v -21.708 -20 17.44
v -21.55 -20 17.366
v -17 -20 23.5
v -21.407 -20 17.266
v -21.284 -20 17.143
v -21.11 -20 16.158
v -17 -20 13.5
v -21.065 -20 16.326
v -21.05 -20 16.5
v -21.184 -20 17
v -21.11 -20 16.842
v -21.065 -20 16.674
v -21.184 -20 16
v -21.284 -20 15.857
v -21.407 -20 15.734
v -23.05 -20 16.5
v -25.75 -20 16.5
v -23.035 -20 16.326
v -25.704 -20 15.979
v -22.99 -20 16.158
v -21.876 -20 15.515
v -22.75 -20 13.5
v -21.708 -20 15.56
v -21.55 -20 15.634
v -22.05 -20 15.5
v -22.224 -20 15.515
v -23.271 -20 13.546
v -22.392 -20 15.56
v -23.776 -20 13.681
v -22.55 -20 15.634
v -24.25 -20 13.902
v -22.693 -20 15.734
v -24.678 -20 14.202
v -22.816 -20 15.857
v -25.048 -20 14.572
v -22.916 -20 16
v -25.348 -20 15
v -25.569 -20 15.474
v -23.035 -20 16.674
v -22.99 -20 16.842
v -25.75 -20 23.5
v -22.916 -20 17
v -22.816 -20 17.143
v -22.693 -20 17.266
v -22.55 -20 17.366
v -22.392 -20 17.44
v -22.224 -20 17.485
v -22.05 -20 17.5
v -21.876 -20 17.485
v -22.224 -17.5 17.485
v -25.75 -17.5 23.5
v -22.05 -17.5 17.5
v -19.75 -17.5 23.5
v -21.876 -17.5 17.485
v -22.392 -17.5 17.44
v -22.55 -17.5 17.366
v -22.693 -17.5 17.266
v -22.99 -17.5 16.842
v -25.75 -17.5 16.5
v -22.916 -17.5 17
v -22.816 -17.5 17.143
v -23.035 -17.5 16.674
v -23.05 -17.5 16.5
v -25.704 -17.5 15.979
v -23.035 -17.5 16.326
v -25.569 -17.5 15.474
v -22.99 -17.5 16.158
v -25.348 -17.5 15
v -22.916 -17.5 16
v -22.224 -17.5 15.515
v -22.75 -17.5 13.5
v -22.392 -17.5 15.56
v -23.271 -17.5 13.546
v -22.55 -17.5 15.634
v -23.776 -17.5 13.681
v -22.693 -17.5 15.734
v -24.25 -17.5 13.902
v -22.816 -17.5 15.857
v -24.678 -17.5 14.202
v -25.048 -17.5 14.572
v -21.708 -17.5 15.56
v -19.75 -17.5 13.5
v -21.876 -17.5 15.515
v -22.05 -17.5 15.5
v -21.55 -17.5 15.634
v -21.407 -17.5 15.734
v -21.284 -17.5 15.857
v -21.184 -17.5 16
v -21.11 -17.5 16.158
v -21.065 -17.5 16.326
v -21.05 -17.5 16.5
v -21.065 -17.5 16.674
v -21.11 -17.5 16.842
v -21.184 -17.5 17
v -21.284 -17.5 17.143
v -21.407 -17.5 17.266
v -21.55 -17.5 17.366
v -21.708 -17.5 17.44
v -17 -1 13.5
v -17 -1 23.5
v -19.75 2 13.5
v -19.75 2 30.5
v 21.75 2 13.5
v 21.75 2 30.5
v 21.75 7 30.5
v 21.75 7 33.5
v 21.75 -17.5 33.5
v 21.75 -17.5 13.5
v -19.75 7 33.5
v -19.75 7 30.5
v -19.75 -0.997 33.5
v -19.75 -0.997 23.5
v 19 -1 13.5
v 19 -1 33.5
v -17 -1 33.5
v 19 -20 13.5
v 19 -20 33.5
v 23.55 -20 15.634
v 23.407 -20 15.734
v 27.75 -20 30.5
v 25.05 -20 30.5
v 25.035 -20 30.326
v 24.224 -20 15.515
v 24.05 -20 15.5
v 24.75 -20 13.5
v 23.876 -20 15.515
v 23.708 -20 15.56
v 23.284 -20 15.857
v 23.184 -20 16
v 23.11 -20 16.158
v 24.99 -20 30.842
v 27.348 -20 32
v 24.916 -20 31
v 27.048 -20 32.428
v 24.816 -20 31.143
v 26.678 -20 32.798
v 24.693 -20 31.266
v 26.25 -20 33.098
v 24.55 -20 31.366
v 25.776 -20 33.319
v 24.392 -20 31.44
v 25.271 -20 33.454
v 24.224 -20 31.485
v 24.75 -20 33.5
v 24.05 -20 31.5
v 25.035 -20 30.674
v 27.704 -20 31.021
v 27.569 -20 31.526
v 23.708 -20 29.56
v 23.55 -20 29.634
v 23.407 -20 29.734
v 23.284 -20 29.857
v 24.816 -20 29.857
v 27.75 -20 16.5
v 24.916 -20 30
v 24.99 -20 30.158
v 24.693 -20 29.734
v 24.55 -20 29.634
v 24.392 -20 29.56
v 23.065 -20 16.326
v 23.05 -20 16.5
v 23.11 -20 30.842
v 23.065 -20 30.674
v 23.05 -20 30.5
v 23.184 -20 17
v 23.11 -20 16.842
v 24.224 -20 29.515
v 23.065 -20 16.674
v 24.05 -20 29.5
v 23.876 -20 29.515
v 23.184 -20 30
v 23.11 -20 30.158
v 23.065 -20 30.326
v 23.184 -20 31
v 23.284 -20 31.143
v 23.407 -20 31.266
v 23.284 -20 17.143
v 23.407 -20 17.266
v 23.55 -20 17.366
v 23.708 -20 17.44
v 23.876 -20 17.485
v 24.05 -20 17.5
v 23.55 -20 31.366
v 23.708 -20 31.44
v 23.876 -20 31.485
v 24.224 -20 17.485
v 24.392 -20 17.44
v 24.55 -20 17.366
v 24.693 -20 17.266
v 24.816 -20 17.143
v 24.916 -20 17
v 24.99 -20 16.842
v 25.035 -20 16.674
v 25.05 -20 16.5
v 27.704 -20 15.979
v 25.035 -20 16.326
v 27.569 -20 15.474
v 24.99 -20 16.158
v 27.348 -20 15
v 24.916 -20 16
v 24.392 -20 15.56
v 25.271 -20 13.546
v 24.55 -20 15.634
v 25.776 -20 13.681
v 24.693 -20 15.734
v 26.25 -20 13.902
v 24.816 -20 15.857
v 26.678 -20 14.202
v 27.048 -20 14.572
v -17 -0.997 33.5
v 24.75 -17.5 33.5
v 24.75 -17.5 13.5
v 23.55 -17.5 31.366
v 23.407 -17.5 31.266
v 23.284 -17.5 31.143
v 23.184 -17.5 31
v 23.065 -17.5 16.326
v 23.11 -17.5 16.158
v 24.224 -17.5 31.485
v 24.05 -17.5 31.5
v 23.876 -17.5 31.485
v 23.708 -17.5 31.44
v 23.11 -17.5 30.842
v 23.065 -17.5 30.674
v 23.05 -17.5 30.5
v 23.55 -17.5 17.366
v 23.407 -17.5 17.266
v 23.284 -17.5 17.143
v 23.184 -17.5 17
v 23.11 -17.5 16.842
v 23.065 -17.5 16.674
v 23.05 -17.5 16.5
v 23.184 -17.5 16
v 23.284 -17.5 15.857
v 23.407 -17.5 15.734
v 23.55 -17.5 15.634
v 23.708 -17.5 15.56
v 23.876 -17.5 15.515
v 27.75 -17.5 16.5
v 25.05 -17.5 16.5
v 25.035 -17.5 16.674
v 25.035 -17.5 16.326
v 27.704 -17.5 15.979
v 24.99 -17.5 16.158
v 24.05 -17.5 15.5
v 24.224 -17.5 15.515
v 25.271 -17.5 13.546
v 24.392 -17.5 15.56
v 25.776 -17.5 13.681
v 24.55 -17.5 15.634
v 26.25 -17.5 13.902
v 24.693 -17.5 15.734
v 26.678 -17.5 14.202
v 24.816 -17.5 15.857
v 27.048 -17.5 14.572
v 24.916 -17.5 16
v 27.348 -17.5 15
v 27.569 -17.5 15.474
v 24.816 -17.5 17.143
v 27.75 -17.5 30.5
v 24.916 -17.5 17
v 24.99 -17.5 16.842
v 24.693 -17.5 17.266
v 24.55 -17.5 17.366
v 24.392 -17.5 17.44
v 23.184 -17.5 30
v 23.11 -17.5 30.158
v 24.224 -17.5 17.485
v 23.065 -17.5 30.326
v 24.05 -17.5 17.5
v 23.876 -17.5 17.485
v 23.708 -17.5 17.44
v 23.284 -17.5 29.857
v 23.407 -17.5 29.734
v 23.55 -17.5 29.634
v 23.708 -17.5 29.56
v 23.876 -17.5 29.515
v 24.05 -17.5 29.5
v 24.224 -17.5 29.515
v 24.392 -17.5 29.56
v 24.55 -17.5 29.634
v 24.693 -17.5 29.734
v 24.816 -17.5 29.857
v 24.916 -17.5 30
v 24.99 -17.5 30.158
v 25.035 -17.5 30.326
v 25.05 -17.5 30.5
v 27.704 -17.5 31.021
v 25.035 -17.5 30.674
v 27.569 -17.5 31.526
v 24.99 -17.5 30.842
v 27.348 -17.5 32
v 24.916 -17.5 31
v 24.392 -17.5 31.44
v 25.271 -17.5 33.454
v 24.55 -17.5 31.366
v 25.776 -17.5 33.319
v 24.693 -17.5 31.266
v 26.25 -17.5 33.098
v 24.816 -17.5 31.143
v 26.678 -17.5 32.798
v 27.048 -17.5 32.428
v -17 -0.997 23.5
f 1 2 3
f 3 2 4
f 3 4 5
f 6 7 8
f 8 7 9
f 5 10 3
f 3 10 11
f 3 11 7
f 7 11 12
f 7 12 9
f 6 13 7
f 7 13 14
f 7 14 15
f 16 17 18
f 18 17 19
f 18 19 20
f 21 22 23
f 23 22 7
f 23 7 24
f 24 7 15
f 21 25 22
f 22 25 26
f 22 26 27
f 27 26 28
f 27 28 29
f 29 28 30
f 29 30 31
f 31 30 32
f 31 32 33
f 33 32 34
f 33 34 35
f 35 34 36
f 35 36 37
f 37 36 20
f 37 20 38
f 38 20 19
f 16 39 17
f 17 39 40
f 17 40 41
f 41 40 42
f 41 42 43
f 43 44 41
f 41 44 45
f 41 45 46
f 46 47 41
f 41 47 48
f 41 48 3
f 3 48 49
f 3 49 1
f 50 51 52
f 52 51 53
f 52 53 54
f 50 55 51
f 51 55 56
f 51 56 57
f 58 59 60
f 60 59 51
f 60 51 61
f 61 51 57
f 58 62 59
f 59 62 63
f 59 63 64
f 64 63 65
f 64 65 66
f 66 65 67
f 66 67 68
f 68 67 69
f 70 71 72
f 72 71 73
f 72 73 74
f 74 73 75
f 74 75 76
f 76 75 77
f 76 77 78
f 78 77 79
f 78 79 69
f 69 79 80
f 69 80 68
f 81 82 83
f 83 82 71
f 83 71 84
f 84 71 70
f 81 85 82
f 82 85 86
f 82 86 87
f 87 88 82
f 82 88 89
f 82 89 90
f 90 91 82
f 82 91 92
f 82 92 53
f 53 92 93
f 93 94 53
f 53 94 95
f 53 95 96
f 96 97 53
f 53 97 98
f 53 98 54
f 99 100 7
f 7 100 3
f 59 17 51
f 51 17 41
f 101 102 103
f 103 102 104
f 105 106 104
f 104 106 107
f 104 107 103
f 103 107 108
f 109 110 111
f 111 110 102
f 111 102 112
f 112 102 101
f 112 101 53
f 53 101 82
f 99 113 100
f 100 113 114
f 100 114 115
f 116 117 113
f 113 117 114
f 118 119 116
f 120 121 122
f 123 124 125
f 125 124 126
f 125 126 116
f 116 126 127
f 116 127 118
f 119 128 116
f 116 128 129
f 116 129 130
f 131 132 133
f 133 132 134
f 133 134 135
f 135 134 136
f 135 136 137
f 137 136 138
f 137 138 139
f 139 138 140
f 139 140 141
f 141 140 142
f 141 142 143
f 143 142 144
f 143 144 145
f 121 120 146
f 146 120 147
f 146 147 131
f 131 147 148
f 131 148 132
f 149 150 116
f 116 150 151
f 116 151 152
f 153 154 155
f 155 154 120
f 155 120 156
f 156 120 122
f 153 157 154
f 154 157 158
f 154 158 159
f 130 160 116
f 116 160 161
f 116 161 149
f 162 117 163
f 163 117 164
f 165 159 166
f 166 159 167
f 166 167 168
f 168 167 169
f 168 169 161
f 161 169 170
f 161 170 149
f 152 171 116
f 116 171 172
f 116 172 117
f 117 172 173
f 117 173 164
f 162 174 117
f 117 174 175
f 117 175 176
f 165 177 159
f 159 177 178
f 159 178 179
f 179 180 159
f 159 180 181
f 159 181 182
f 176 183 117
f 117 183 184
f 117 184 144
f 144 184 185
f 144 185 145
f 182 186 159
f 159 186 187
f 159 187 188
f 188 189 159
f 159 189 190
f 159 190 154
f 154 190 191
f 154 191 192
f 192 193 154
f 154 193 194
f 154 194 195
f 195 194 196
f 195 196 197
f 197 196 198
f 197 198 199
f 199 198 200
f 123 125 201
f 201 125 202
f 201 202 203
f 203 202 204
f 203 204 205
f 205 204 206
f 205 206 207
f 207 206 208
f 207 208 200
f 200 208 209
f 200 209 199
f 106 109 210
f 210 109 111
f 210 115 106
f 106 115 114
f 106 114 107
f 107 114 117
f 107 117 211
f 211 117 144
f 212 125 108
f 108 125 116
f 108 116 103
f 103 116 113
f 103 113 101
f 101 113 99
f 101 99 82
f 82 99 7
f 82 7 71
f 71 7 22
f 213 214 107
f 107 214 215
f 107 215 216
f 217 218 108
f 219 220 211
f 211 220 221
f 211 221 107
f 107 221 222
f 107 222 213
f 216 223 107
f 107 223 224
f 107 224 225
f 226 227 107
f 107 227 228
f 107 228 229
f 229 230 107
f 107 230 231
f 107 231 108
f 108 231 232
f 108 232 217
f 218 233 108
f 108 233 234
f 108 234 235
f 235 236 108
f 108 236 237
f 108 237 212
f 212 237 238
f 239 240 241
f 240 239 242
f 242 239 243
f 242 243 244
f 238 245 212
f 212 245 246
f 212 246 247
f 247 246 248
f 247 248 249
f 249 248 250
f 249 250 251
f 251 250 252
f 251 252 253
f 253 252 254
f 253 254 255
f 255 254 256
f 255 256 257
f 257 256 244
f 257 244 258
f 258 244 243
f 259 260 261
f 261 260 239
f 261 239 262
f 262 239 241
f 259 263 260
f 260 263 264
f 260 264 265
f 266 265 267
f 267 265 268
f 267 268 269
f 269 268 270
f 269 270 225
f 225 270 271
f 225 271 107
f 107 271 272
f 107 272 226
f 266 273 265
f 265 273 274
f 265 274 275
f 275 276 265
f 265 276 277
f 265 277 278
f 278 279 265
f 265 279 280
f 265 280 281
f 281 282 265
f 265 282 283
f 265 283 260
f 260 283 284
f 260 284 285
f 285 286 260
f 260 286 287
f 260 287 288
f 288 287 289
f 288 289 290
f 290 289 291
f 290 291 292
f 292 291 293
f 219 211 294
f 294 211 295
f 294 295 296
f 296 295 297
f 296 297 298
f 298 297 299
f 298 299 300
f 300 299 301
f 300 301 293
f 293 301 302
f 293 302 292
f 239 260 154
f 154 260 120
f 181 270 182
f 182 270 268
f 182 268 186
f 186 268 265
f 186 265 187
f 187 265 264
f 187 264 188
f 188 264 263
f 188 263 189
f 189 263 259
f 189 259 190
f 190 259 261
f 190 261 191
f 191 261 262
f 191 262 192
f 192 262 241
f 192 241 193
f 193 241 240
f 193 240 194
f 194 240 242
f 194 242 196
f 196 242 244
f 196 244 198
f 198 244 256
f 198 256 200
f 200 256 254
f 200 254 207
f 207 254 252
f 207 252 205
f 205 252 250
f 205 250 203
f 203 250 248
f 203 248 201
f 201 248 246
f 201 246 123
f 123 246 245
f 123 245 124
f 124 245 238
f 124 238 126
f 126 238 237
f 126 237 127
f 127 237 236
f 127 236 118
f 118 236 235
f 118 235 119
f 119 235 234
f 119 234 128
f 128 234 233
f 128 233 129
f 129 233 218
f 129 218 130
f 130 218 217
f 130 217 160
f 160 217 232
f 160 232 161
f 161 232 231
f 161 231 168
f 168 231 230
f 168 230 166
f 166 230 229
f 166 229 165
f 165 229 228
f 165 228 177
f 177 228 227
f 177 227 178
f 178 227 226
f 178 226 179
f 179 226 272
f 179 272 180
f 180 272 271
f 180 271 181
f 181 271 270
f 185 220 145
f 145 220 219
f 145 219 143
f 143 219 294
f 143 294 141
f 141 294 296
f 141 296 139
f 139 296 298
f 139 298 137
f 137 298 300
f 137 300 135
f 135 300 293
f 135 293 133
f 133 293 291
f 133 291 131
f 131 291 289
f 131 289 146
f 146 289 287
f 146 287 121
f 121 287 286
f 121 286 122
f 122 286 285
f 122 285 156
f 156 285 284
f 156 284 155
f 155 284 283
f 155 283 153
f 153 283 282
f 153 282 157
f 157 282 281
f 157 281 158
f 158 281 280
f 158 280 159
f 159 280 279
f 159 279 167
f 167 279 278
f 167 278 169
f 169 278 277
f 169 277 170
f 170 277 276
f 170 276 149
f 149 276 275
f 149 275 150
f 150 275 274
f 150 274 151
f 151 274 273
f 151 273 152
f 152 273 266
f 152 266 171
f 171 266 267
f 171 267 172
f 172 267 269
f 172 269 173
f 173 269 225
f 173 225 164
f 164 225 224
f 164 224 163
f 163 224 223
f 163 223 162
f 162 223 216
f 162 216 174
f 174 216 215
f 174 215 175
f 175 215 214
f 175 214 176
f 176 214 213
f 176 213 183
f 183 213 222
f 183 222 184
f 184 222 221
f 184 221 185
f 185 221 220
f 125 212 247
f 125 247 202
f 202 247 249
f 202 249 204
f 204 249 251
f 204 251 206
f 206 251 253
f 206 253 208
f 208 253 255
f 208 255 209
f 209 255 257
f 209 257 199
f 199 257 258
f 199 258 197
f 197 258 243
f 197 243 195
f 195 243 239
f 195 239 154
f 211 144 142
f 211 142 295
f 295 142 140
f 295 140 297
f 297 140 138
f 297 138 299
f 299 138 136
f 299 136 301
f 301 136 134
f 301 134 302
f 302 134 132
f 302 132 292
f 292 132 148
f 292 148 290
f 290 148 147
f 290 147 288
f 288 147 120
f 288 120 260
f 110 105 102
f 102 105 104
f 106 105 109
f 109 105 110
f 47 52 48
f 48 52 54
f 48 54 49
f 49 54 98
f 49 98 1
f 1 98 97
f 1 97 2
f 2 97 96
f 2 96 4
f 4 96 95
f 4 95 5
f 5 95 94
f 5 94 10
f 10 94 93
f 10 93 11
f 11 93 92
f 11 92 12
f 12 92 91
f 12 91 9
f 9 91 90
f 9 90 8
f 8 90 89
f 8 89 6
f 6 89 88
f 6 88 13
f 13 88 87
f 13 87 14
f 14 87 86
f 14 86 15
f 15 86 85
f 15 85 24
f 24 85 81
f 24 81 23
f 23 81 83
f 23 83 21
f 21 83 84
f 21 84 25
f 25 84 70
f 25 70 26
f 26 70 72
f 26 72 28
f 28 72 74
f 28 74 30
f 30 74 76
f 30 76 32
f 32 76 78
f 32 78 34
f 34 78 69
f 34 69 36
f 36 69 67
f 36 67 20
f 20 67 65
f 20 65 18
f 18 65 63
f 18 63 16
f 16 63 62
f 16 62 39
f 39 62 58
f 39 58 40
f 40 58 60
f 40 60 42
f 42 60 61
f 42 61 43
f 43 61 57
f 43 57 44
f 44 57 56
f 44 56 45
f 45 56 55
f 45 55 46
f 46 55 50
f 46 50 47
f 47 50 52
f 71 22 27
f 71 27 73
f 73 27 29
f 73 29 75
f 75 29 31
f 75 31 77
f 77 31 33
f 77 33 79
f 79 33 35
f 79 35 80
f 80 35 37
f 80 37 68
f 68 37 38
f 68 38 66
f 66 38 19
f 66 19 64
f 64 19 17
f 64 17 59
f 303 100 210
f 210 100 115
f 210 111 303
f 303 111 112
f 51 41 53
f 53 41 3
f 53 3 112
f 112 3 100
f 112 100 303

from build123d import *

# Parameters (mm, degrees)
BOSS_EXTRUDE1_DEPTH      = 33.5
SKETCH2_W                = 20
SKETCH2_H                = 2.5
BOSS_EXTRUDE2_DEPTH      = 6
SKETCH9_R                = 1
CORTE_EXTRUS_O1_DEPTH    = 48.67140128
FILETE1_R                = 3
ESBO_O12_W               = 41.5
ESBO_O12_H               = 3
RESSALTO_EXTRUS_O1_DEPTH = 5
FILETE1_OF_ESPELHAR1_R   = 3
ESBO_O14_W               = 12
ESBO_O14_H               = 19.002666305
CORTE_EXTRUS_O10_DEPTH   = 10
ESBO_O15_W               = 13.5
ESBO_O15_H               = 22.081303671
CORTE_EXTRUS_O11_DEPTH   = 62.469504634


with BuildPart() as part:
    # Sketch1 → Boss-Extrude1 (new body)
    with BuildSketch(Plane.XY):
        Polygon((19, -20), (21.75, -20), (21.75, 2), (-19.75, 2), (-19.75, -20), (-17, -20), (-17, -1), (19, -1), align=None)
    extrude(amount=BOSS_EXTRUDE1_DEPTH)

    # Sketch2 → Boss-Extrude2 (add)
    with BuildSketch(Plane(origin=(21.75, 0, 0), x_dir=(0, 0, -1), z_dir=(1, 0, 0))):
        with Locations((-23.5, -18.75)):
            Rectangle(SKETCH2_W, SKETCH2_H)
    boss_extrude2 = extrude(amount=BOSS_EXTRUDE2_DEPTH)

    # Sketch9 → Corte-extrusão1 (cut, through all)
    with BuildSketch(Plane(origin=(0, -17.5, 0), x_dir=(1, 0, 0), z_dir=(0, 1, 0))):
        with Locations(Location((24.05, -16.5, 0), (0, 0, 270))):
            Circle(SKETCH9_R)
        with Locations(Location((24.05, -30.5, 0), (0, 0, 270))):
            Circle(SKETCH9_R)
    corte_extrus_o1 = extrude(amount=-CORTE_EXTRUS_O1_DEPTH, mode=Mode.SUBTRACT)

    # Filete1
    filete1_edges = [part.edges().sort_by_distance(p)[0] for p in [
        (27.75, -18.75, 13.5),
        (27.75, -18.75, 33.5),
    ]]
    fillet(filete1_edges, radius=FILETE1_R)

    # Esboço12 → Ressalto-extrusão1 (add)
    with BuildSketch(Plane(origin=(0, 2, 0), x_dir=(1, 0, 0), z_dir=(0, 1, 0))):
        with Locations((1, -32)):
            Rectangle(ESBO_O12_W, ESBO_O12_H)
    extrude(amount=RESSALTO_EXTRUS_O1_DEPTH)

    # Espelhar1: Boss-Extrude2, Corte-extrusão1 across plane
    add(boss_extrude2.mirror(Plane(origin=(1, 0, 0), x_dir=(0, 0, 1), z_dir=(1, 0, 0))))
    add(corte_extrus_o1.mirror(Plane(origin=(1, 0, 0), x_dir=(0, 0, 1), z_dir=(1, 0, 0))), mode=Mode.SUBTRACT)

    # Filete1 of Espelhar1
    filete1_of_espelhar1_edges = [part.edges().sort_by_distance(p)[0] for p in [
        (-25.75, -18.75, 13.5),
        (-25.75, -18.75, 33.5),
    ]]
    fillet(filete1_of_espelhar1_edges, radius=FILETE1_OF_ESPELHAR1_R)

    # Esboço14 → Corte-extrusão10 (cut)
    with BuildSketch(Plane.XY.offset(33.5)):
        with Locations((-23, -10.498666848)):
            Rectangle(ESBO_O14_W, ESBO_O14_H)
    extrude(amount=-CORTE_EXTRUS_O10_DEPTH, mode=Mode.SUBTRACT)

    # Esboço15 → Corte-extrusão11 (cut, through all)
    with BuildSketch(Plane.ZY.offset(19.75)):
        with Locations((6.75, -8.959348164)):
            Rectangle(ESBO_O15_W, ESBO_O15_H)
    extrude(amount=-CORTE_EXTRUS_O11_DEPTH, mode=Mode.SUBTRACT)


solid = part.part
